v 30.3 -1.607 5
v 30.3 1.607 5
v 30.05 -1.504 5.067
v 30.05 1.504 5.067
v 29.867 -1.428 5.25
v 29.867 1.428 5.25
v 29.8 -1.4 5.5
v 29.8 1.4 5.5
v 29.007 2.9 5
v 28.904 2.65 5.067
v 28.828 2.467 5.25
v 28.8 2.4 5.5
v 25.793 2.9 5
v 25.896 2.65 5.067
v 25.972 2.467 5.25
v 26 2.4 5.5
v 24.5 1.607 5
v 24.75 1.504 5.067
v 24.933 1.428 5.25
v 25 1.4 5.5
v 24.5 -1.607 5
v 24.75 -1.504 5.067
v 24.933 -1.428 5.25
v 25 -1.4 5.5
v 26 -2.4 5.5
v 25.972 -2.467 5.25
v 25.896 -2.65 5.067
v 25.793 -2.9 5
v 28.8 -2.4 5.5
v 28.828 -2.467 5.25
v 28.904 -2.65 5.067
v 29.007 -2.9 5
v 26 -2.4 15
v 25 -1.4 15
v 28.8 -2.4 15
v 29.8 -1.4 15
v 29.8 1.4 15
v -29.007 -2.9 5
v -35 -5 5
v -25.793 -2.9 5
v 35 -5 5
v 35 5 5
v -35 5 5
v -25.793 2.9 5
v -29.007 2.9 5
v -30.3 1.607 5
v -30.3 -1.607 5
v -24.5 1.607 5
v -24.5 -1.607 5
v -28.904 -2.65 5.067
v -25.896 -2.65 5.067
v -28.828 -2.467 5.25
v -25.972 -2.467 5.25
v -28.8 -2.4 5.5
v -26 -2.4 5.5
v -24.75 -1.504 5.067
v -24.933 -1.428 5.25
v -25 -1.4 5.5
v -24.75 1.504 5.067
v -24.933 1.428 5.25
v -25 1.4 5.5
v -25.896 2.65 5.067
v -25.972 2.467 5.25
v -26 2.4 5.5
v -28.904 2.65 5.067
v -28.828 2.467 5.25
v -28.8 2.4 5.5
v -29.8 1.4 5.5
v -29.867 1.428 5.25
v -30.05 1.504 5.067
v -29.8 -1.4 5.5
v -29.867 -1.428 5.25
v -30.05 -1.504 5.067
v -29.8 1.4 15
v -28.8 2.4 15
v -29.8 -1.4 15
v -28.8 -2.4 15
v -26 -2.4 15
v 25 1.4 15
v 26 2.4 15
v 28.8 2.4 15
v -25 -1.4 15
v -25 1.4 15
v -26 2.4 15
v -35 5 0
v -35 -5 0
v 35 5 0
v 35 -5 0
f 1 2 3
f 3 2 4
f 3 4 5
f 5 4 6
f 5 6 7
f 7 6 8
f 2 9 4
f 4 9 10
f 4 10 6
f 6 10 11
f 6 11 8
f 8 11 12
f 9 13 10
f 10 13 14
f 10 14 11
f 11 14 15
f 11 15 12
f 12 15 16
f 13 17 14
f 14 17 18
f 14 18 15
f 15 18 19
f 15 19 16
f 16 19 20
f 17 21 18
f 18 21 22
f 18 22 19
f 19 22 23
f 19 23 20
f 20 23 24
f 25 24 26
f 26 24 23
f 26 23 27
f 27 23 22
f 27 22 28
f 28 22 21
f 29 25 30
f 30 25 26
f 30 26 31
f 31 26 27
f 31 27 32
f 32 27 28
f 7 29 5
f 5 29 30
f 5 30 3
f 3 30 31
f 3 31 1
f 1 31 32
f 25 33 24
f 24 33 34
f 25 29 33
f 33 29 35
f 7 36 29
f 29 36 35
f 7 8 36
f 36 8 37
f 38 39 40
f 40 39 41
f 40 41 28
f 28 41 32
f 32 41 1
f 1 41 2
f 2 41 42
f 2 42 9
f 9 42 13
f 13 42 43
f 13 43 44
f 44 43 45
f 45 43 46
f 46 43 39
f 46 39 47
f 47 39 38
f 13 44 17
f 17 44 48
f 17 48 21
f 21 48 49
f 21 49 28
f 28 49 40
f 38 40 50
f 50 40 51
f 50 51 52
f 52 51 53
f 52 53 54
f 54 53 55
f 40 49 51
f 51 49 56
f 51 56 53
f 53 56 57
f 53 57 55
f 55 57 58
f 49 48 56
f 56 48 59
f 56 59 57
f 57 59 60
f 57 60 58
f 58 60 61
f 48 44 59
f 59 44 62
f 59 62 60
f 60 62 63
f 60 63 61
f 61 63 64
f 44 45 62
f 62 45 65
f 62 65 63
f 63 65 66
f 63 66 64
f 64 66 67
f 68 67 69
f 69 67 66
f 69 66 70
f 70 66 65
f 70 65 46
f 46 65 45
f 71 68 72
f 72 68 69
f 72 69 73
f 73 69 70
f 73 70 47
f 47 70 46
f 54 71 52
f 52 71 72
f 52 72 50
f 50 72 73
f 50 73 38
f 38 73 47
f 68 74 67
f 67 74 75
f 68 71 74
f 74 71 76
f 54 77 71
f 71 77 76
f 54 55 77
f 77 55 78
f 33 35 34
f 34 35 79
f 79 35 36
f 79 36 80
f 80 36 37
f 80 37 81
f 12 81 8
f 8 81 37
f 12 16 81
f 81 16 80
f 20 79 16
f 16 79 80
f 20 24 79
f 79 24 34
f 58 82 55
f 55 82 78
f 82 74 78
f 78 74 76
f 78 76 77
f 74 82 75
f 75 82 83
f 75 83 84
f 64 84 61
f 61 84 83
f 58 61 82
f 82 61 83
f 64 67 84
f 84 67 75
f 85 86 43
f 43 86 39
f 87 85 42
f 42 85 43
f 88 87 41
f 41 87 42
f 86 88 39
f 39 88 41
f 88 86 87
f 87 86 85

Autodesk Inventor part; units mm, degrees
ref_plane "YZ Plane" through (0, 0, 0) normal (1, 0, 0) x (0, 1, 0)
ref_plane "XZ Plane" through (0, 0, 0) normal (0, 1, 0) x (-1, 0, 0)
ref_plane "XY Plane" through (0, 0, 0) normal (0, 0, 1) x (1, 0, 0)
sketch "Sketch1" plane through (0, 0, 0) normal (0, 0, 1) x (1, 0, 0)
  line L0 (-35, 5) -> (35, 5)
  line L1 (35, 5) -> (35, -5)
  line L2 (35, -5) -> (-35, -5)
  line L3 (-35, -5) -> (-35, 5)
  line L4 (-35, 5) -> (35, -5) construction
  line L5 (35, 5) -> (-35, -5) construction
  point P0 (0, 0)
  dimension "d0" = 70
  dimension "d1" = 10
extrude "Extrusion1" add sketch "Sketch1" along normal blind 5
sketch "Sketch2" plane through (0, 0, 5) normal (0, 0, 1) x (1, 0, 0)
  line L0 (-29.8, 2.4) -> (-25, 2.4)
  line L1 (-25, 2.4) -> (-25, -2.4)
  line L2 (-25, -2.4) -> (-29.8, -2.4)
  line L3 (-29.8, -2.4) -> (-29.8, 2.4)
  line L4 (-29.8, 2.4) -> (-25, -2.4) construction
  line L5 (-25, 2.4) -> (-29.8, -2.4) construction
  line L6 (35, 5) -> (-35, 5) construction
  line L7 (-35, -5) -> (35, -5) construction
  line L8 (0, 5) -> (0, -5) construction
  line L9 (29.8, 2.4) -> (25, 2.4)
  line L10 (25, 2.4) -> (25, -2.4)
  line L11 (25, -2.4) -> (29.8, -2.4)
  line L12 (29.8, -2.4) -> (29.8, 2.4)
  point P0 (0, 0)
  point P1 (-27.4, 0)
  point P2 (-25, 0)
  dimension "d4" = 4.8
  dimension "d5" = 4.8
  dimension "d6" = 25
extrude "Extrusion2" add sketch "Sketch2" along normal blind 10
chamfer "Chamfer1" distance 1 angle 45 8 edges at (-29.8, 2.4, 10) (-25, 2.4, 10) (-29.8, -2.4, 10) (-25, -2.4, 10) (25, 2.4, 10) (29.8, 2.4, 10) (29.8, -2.4, 10) (25, -2.4, 10)
fillet "Fillet1" radius 0.5 8 edges at (-27.4, 2.4, 5) (-25.5, 1.9, 5) (-25, 0, 5) (-25.5, -1.9, 5) (-27.4, -2.4, 5) (-29.3, -1.9, 5) (-29.8, 0, 5) (-29.3, 1.9, 5)
fillet "Fillet2" radius 0.5 8 edges at (25, 0, 5) (25.5, 1.9, 5) (27.4, 2.4, 5) (29.3, 1.9, 5) (29.8, 0, 5) (29.3, -1.9, 5) (27.4, -2.4, 5) (25.5, -1.9, 5)
properties part number "UNION_INTERNA"
